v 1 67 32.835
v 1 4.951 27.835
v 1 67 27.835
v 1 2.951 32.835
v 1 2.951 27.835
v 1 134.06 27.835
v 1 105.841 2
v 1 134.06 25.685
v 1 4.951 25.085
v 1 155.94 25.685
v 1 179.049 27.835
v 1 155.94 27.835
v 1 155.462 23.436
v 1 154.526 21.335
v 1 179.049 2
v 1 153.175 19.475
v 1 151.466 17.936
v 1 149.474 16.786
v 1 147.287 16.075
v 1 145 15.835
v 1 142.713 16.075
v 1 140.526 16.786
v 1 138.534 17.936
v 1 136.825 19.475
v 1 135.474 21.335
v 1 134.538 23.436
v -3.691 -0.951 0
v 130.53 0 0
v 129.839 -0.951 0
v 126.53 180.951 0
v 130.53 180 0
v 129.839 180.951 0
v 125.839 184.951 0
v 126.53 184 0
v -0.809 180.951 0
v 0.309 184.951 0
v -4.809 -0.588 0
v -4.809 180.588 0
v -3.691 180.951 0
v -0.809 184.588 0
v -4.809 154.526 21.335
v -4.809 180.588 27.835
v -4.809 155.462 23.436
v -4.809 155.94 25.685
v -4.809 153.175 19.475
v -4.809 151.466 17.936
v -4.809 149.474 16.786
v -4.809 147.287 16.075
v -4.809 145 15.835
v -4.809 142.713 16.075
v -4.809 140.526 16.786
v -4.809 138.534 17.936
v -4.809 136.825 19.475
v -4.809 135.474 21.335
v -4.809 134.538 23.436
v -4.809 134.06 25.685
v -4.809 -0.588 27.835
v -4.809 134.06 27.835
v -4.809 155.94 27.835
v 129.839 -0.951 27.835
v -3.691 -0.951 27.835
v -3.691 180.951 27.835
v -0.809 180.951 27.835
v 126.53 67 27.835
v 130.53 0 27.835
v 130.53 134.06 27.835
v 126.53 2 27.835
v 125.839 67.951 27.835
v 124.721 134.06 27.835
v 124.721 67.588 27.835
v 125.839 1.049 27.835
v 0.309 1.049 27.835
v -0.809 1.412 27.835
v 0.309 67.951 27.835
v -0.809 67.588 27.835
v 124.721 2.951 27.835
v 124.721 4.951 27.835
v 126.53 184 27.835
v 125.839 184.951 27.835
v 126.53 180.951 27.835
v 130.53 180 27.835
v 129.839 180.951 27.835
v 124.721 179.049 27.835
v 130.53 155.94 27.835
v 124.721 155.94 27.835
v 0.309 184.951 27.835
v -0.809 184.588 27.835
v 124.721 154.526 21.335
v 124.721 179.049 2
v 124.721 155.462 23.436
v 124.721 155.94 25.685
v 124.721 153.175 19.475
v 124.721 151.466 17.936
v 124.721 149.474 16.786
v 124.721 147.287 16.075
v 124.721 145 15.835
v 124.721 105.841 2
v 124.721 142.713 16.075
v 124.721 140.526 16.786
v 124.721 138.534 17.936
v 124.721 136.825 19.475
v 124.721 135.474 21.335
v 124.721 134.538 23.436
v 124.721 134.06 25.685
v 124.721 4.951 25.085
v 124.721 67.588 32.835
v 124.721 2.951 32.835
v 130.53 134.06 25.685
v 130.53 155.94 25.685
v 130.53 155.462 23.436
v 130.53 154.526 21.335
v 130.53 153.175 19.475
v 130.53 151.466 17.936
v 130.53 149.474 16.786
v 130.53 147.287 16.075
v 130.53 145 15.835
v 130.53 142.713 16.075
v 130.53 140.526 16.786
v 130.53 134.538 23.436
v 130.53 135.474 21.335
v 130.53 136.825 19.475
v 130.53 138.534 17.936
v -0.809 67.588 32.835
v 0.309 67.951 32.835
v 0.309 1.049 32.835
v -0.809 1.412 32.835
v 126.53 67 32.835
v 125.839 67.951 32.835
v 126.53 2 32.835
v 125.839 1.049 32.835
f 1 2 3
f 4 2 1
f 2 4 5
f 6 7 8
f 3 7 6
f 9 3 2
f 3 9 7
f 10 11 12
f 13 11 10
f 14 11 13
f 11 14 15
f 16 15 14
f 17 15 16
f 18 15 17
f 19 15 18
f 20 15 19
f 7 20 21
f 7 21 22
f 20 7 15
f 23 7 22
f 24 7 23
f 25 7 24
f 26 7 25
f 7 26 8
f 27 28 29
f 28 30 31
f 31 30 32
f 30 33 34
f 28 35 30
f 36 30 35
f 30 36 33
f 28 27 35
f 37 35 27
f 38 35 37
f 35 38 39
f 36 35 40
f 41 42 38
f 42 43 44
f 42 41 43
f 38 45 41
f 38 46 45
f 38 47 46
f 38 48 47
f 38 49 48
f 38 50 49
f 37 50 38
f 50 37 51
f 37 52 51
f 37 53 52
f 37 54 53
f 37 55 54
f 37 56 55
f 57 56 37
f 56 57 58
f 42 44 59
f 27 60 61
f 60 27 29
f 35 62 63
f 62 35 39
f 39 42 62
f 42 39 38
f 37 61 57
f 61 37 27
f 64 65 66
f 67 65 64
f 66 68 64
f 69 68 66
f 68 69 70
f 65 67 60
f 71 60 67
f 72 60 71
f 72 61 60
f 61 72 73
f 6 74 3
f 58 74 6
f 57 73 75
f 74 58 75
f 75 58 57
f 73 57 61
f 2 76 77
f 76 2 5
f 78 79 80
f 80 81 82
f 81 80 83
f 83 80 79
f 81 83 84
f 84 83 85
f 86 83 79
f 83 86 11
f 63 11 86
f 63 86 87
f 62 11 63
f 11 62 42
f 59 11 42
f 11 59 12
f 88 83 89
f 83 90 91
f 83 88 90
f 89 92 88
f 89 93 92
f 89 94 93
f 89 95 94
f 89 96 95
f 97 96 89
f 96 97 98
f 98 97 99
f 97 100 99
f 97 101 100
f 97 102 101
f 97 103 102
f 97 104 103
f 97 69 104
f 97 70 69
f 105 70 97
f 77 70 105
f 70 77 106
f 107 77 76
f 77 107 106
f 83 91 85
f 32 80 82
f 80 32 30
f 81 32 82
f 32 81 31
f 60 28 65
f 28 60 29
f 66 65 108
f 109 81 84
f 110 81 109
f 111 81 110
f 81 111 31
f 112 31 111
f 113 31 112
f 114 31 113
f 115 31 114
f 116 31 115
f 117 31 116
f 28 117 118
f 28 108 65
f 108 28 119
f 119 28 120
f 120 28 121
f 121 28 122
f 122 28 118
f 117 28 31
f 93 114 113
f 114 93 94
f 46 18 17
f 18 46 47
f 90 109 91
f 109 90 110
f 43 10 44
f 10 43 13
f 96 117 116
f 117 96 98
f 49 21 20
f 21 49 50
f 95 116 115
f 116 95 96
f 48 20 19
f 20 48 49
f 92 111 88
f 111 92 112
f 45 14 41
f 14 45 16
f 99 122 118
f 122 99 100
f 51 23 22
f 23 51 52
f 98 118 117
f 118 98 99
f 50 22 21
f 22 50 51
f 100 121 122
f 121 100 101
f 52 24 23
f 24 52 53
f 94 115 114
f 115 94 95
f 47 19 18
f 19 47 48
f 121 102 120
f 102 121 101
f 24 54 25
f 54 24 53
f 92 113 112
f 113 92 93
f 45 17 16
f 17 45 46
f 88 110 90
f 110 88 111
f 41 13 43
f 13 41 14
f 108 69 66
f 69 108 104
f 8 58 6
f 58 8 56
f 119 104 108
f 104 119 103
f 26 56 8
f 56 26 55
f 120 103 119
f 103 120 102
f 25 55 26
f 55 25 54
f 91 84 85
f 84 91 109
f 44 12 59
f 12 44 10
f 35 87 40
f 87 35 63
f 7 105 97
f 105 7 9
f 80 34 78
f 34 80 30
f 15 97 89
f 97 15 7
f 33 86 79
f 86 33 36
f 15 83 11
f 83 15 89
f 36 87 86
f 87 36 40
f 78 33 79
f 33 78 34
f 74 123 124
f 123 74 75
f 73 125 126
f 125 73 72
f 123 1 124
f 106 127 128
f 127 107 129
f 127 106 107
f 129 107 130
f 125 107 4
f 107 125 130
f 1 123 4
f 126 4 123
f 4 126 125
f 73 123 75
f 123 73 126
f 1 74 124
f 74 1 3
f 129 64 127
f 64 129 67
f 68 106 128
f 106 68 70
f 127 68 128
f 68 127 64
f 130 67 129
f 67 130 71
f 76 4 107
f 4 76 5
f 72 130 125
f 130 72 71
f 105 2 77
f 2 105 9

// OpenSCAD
//General settings
can_height = 123.53;
dispenser_width = can_height + 2;
dispenser_length = 67;
wall_thickness = 4;
lip_wall_thickness = 2;
tall_wall_x = 125;
tall_wall_y = 109.26;
eject_wall_x = dispenser_width;
eject_wall_y = 180;
eject_wall_z = 53.67/2;
lip_x = tall_wall_x + .53;
lip_y = dispenser_length;
lip_z = 5;
lip_z_offset = eject_wall_z;
back_wall_z = 50/2;

//eject_ramp
eject_ramp_x = tall_wall_x;
eject_ramp_y = tall_wall_y;
eject_ramp_z = back_wall_z;
eject_ramp_bottom_left = [0, eject_ramp_y, 0];
eject_ramp_bottom_right = [eject_ramp_x, eject_ramp_y, 0];
eject_ramp_top_left = [0, 0, eject_ramp_z];
eject_ramp_top_right = [eject_ramp_x, 0, eject_ramp_z];
eject_ramp_back_left = [0, 0, 0];
eject_ramp_back_right = [eject_ramp_x, 0, 0];
eject_ramp = [eject_ramp_bottom_left, eject_ramp_bottom_right, eject_ramp_top_left, eject_ramp_top_right, eject_ramp_back_left, eject_ramp_back_right];

//eject_flat
eject_flat_x = dispenser_width;
eject_flat_y = 180;
eject_flat_z = 0;
eject_flat_thickness = 1;
eject_flat_back_left = [0, 0, 0];
eject_flat_back_right = [eject_flat_x, 0, 0];
eject_flat_front_left = [0, eject_flat_y, 0];
eject_flat_front_right = [eject_flat_x, eject_flat_y, 0];
eject_flat_back_right_thickness = [eject_flat_x, 0, eject_flat_thickness];
eject_flat_back_left_thickness = [0, 0, eject_flat_thickness];
eject_flat_front_left_thickness = [0, eject_flat_y, eject_flat_thickness];
eject_flat_front_right_thickness = [eject_flat_x, eject_flat_y, eject_flat_thickness];
eject_flat = [eject_flat_back_left, eject_flat_back_right, eject_flat_front_left, eject_flat_front_right, eject_flat_back_left_thickness, eject_flat_back_right_thickness, eject_flat_front_left_thickness, eject_flat_front_right_thickness];

//left_eject_wall
left_eject_wall_x = -4;
left_eject_wall_y = eject_wall_y;
left_eject_wall_z = eject_wall_z;
left_eject_bottom_back = [left_eject_wall_x, 0, 0];
left_eject_bottom_forward = [left_eject_wall_x, left_eject_wall_y, 0];
left_eject_top_back = [left_eject_wall_x, 0, left_eject_wall_z];
left_eject_top_forward = [left_eject_wall_x, left_eject_wall_y, left_eject_wall_z];
left_eject_bottom_back_thickness = [left_eject_wall_x + wall_thickness, 0, 0];
left_eject_bottom_forward_thickness = [left_eject_wall_x + wall_thickness, left_eject_wall_y, 0];
left_eject_top_back_thickness = [left_eject_wall_x + wall_thickness, 0, left_eject_wall_z];
left_eject_top_forward_thickness = [left_eject_wall_x + wall_thickness, left_eject_wall_y, left_eject_wall_z];
left_eject = [left_eject_bottom_back, left_eject_bottom_forward, left_eject_top_back, left_eject_top_forward, left_eject_bottom_back_thickness, left_eject_bottom_forward_thickness, left_eject_top_back_thickness, left_eject_top_forward_thickness];

//right_eject_wall
right_eject_wall_x = dispenser_width + 4;
right_eject_wall_y = eject_wall_y;
right_eject_wall_z = eject_wall_z;
right_eject_bottom_back = [right_eject_wall_x, 0, 0];
right_eject_bottom_forward = [right_eject_wall_x, right_eject_wall_y, 0];
right_eject_top_back = [right_eject_wall_x, 0, right_eject_wall_z];
right_eject_top_forward = [right_eject_wall_x, right_eject_wall_y, right_eject_wall_z];
right_eject_bottom_back_thickness = [right_eject_wall_x - wall_thickness, 0, 0];
right_eject_bottom_forward_thickness = [right_eject_wall_x - wall_thickness, right_eject_wall_y, 0];
right_eject_top_back_thickness = [right_eject_wall_x - wall_thickness, 0, right_eject_wall_z];
right_eject_top_forward_thickness = [right_eject_wall_x - wall_thickness, right_eject_wall_y, right_eject_wall_z];
right_eject = [right_eject_bottom_back, right_eject_bottom_forward, right_eject_top_back, right_eject_top_forward, right_eject_bottom_back_thickness, right_eject_bottom_forward_thickness, right_eject_top_back_thickness, right_eject_top_forward_thickness];

//front_eject_wall
front_eject_wall_x = eject_wall_x;
front_eject_wall_y = eject_wall_y;
front_eject_wall_z = eject_wall_z;
front_eject_bottom_left = [0, front_eject_wall_y, 0];
front_eject_bottom_right = [front_eject_wall_x, front_eject_wall_y, 0];
front_eject_top_left = [0, front_eject_wall_y, front_eject_wall_z];
front_eject_top_right = [front_eject_wall_x, front_eject_wall_y, front_eject_wall_z];
front_eject_bottom_left_thickness = [0, front_eject_wall_y  + wall_thickness, 0];
front_eject_bottom_right_thickness = [front_eject_wall_x, front_eject_wall_y + wall_thickness, 0];
front_eject_top_left_thickness = [0, front_eject_wall_y + wall_thickness, front_eject_wall_z];
front_eject_top_right_thickness = [front_eject_wall_x, front_eject_wall_y + wall_thickness, front_eject_wall_z];
front_eject = [front_eject_bottom_left, front_eject_bottom_right, front_eject_top_left, front_eject_top_right, front_eject_bottom_left_thickness, front_eject_bottom_right_thickness, front_eject_top_left_thickness, front_eject_top_right_thickness];

//back_eject_wall
back_eject_wall_x = eject_wall_x;
back_eject_wall_y = 0;
back_eject_wall_z = eject_wall_z;
back_eject_bottom_left = [0, back_eject_wall_y, 0];
back_eject_bottom_right = [back_eject_wall_x, back_eject_wall_y, 0];
back_eject_top_left = [0, back_eject_wall_y, back_eject_wall_z];
back_eject_top_right = [back_eject_wall_x, back_eject_wall_y, back_eject_wall_z];
back_eject_bottom_left_thickness = [0, back_eject_wall_y  + wall_thickness, 0];
back_eject_bottom_right_thickness = [back_eject_wall_x, back_eject_wall_y + wall_thickness, 0];
back_eject_top_left_thickness = [0, back_eject_wall_y + wall_thickness, back_eject_wall_z];
back_eject_top_right_thickness = [back_eject_wall_x, back_eject_wall_y + wall_thickness, back_eject_wall_z];
back_eject = [back_eject_bottom_left, back_eject_bottom_right, back_eject_top_left, back_eject_top_right, back_eject_bottom_left_thickness, back_eject_bottom_right_thickness, back_eject_top_left_thickness, back_eject_top_right_thickness];

//eject_finger_assist
eject_finger_assist_radius = 11;
eject_finger_assist_length = dispenser_width + 10;
eject_finger_assist_x = -5;
eject_finger_assist_y = 145;
eject_finger_assist_z = eject_wall_z;

//left_lip_wall
left_lip_wall_lip_x = 0;
left_lip_wall_lip_y = lip_y;
left_lip_wall_lip_z = lip_z;
left_wall_lip_bottom_back = [left_lip_wall_lip_x, lip_wall_thickness, 0];
left_wall_lip_bottom_forward = [left_lip_wall_lip_x, left_lip_wall_lip_y, lip_z_offset];
left_wall_lip_top_back = [left_lip_wall_lip_x, lip_wall_thickness, lip_z_offset + left_lip_wall_lip_z];
left_wall_lip_top_forward = [left_lip_wall_lip_x, left_lip_wall_lip_y, lip_z_offset + left_lip_wall_lip_z];
left_wall_lip_bottom_back_thickness = [left_lip_wall_lip_x, lip_wall_thickness, lip_z_offset];
left_wall_lip_bottom_forward_thickness = [left_lip_wall_lip_x, left_lip_wall_lip_y, lip_z_offset];
left_wall_lip_top_back_thickness = [left_lip_wall_lip_x, lip_wall_thickness, lip_z_offset + left_lip_wall_lip_z];
left_wall_lip_top_forward_thickness = [left_lip_wall_lip_x, left_lip_wall_lip_y, lip_z_offset + left_lip_wall_lip_z];
left_lip_wall = [left_wall_lip_bottom_back, left_wall_lip_bottom_forward, left_wall_lip_top_back, left_wall_lip_top_forward, left_wall_lip_bottom_back_thickness, left_wall_lip_bottom_forward_thickness, left_wall_lip_top_back_thickness, left_wall_lip_top_forward_thickness];

//right_lip_wall
right_lip_wall_lip_x = lip_x;
right_lip_wall_lip_y = lip_y;
right_lip_wall_lip_z = lip_z;
right_wall_lip_bottom_back = [right_lip_wall_lip_x, lip_wall_thickness, lip_z_offset];
right_wall_lip_bottom_forward = [right_lip_wall_lip_x, right_lip_wall_lip_y, lip_z_offset];
right_wall_lip_top_back = [right_lip_wall_lip_x, lip_wall_thickness, lip_z_offset + right_lip_wall_lip_z];
right_wall_lip_top_forward = [right_lip_wall_lip_x, right_lip_wall_lip_y, lip_z_offset + right_lip_wall_lip_z];
right_wall_lip_bottom_back_thickness = [right_lip_wall_lip_x, lip_wall_thickness, lip_z_offset];
right_wall_lip_bottom_forward_thickness = [right_lip_wall_lip_x, right_lip_wall_lip_y, lip_z_offset];
right_wall_lip_top_back_thickness = [right_lip_wall_lip_x, lip_wall_thickness, lip_z_offset + right_lip_wall_lip_z];
right_wall_lip_top_forward_thickness = [right_lip_wall_lip_x, right_lip_wall_lip_y, lip_z_offset + right_lip_wall_lip_z];
right_lip_wall = [right_wall_lip_bottom_back, right_wall_lip_bottom_forward, right_wall_lip_top_back, right_wall_lip_top_forward, right_wall_lip_bottom_back_thickness, right_wall_lip_bottom_forward_thickness, right_wall_lip_top_back_thickness, right_wall_lip_top_forward_thickness];


//back_lip_wall
back_lip_wall_x = lip_x;
back_lip_wall_y = lip_wall_thickness;
back_lip_wall_z = lip_z + lip_z_offset;
back_wall_lip_bottom_left = [0, back_lip_wall_y, 0];
back_wall_lip_bottom_right = [back_lip_wall_x, back_lip_wall_y, 0];
back_wall_lip_top_left = [0, back_lip_wall_y, back_lip_wall_z];
back_wall_lip_top_right = [back_lip_wall_x, back_lip_wall_y, back_lip_wall_z];
back_wall_lip_bottom_left_thickness = [0, back_lip_wall_y, 0];
back_wall_lip_bottom_right_thickness = [back_lip_wall_x, back_lip_wall_y, 0];
back_wall_lip_top_left_thickness = [0, back_lip_wall_y, back_lip_wall_z];
back_wall_lip_top_right_thickness = [back_lip_wall_x, back_lip_wall_y, back_lip_wall_z];
back_lip_wall = [back_wall_lip_bottom_left, back_wall_lip_bottom_right, back_wall_lip_top_left, back_wall_lip_top_right, back_wall_lip_bottom_left_thickness, back_wall_lip_bottom_right_thickness, back_wall_lip_top_left_thickness, back_wall_lip_top_right_thickness];

//Ejection and offload ramp
union(){
    //Eject ramp
    hull(){
        for(point = eject_ramp){
            translate(point){
                cylinder(1);
            }
        }
    }

    //Eject flat
    hull(){
        for(point = eject_flat){
            translate(point){
                cylinder(1);
            }
        }
    }
    difference(){
        union(){
            //Left eject
            hull(){
                for(point = left_eject){
                    translate(point){
                        cylinder(1);
                    }
                }
            }

            //Right eject
            hull(){
                for(point = right_eject){
                    translate(point){
                        cylinder(1);
                    }
                }
            }
        }
        translate([eject_finger_assist_x, eject_finger_assist_y, eject_finger_assist_z]){
            rotate([0, 90, 0]){
                cylinder(eject_finger_assist_length, eject_finger_assist_radius, eject_finger_assist_radius);
            }
        }
    }

    //Front eject
    hull(){
        for(point = front_eject){
            translate(point){
                cylinder(1);
            }
        }
    }
}

//Lip
hull(){
    for(point = left_lip_wall){
        translate(point){
            cylinder(1);
        }
    }
}
hull(){
    for(point = right_lip_wall){
        translate(point){
            cylinder(1);
        }
    }
}
hull(){
    for(point = back_lip_wall){
        translate(point){
            cylinder(1);
        }
    }
}
hull(){
    for(point = back_eject){
        translate(point){
            cylinder(1);
        }
    }
}
